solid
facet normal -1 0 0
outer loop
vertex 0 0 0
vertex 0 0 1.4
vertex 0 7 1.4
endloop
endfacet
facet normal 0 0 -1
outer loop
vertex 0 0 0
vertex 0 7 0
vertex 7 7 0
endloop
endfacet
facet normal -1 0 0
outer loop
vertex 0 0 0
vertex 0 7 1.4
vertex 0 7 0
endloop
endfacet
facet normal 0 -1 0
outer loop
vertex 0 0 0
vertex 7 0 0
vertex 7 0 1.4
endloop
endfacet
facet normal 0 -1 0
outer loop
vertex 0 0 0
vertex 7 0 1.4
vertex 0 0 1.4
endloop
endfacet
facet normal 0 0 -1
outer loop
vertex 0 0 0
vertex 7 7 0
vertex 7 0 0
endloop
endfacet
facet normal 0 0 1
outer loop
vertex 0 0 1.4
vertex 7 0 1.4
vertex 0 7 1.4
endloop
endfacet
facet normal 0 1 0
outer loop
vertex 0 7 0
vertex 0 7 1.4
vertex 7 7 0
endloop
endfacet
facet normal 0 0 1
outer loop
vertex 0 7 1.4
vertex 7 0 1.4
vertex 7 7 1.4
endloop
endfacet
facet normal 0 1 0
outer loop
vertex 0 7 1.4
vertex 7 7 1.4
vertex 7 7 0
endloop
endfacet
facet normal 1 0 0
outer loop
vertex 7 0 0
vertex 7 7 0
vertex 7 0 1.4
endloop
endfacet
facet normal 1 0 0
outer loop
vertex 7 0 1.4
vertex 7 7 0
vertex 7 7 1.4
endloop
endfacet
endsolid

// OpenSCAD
/* Warning, this is a very basic generator with a lot of approximation 
input data : [LQFP, R8X, 7x7x1.4mm, 48, , A, C04-00278A]
generated by com.zoubworld.electronics.cad.model3d.Basic
Date : Sun Feb 15 10:50:48 CET 2026
*/

//body
color("black")
translate([0,0,0])
cube([7.0,7.0,1.4], center=false);
